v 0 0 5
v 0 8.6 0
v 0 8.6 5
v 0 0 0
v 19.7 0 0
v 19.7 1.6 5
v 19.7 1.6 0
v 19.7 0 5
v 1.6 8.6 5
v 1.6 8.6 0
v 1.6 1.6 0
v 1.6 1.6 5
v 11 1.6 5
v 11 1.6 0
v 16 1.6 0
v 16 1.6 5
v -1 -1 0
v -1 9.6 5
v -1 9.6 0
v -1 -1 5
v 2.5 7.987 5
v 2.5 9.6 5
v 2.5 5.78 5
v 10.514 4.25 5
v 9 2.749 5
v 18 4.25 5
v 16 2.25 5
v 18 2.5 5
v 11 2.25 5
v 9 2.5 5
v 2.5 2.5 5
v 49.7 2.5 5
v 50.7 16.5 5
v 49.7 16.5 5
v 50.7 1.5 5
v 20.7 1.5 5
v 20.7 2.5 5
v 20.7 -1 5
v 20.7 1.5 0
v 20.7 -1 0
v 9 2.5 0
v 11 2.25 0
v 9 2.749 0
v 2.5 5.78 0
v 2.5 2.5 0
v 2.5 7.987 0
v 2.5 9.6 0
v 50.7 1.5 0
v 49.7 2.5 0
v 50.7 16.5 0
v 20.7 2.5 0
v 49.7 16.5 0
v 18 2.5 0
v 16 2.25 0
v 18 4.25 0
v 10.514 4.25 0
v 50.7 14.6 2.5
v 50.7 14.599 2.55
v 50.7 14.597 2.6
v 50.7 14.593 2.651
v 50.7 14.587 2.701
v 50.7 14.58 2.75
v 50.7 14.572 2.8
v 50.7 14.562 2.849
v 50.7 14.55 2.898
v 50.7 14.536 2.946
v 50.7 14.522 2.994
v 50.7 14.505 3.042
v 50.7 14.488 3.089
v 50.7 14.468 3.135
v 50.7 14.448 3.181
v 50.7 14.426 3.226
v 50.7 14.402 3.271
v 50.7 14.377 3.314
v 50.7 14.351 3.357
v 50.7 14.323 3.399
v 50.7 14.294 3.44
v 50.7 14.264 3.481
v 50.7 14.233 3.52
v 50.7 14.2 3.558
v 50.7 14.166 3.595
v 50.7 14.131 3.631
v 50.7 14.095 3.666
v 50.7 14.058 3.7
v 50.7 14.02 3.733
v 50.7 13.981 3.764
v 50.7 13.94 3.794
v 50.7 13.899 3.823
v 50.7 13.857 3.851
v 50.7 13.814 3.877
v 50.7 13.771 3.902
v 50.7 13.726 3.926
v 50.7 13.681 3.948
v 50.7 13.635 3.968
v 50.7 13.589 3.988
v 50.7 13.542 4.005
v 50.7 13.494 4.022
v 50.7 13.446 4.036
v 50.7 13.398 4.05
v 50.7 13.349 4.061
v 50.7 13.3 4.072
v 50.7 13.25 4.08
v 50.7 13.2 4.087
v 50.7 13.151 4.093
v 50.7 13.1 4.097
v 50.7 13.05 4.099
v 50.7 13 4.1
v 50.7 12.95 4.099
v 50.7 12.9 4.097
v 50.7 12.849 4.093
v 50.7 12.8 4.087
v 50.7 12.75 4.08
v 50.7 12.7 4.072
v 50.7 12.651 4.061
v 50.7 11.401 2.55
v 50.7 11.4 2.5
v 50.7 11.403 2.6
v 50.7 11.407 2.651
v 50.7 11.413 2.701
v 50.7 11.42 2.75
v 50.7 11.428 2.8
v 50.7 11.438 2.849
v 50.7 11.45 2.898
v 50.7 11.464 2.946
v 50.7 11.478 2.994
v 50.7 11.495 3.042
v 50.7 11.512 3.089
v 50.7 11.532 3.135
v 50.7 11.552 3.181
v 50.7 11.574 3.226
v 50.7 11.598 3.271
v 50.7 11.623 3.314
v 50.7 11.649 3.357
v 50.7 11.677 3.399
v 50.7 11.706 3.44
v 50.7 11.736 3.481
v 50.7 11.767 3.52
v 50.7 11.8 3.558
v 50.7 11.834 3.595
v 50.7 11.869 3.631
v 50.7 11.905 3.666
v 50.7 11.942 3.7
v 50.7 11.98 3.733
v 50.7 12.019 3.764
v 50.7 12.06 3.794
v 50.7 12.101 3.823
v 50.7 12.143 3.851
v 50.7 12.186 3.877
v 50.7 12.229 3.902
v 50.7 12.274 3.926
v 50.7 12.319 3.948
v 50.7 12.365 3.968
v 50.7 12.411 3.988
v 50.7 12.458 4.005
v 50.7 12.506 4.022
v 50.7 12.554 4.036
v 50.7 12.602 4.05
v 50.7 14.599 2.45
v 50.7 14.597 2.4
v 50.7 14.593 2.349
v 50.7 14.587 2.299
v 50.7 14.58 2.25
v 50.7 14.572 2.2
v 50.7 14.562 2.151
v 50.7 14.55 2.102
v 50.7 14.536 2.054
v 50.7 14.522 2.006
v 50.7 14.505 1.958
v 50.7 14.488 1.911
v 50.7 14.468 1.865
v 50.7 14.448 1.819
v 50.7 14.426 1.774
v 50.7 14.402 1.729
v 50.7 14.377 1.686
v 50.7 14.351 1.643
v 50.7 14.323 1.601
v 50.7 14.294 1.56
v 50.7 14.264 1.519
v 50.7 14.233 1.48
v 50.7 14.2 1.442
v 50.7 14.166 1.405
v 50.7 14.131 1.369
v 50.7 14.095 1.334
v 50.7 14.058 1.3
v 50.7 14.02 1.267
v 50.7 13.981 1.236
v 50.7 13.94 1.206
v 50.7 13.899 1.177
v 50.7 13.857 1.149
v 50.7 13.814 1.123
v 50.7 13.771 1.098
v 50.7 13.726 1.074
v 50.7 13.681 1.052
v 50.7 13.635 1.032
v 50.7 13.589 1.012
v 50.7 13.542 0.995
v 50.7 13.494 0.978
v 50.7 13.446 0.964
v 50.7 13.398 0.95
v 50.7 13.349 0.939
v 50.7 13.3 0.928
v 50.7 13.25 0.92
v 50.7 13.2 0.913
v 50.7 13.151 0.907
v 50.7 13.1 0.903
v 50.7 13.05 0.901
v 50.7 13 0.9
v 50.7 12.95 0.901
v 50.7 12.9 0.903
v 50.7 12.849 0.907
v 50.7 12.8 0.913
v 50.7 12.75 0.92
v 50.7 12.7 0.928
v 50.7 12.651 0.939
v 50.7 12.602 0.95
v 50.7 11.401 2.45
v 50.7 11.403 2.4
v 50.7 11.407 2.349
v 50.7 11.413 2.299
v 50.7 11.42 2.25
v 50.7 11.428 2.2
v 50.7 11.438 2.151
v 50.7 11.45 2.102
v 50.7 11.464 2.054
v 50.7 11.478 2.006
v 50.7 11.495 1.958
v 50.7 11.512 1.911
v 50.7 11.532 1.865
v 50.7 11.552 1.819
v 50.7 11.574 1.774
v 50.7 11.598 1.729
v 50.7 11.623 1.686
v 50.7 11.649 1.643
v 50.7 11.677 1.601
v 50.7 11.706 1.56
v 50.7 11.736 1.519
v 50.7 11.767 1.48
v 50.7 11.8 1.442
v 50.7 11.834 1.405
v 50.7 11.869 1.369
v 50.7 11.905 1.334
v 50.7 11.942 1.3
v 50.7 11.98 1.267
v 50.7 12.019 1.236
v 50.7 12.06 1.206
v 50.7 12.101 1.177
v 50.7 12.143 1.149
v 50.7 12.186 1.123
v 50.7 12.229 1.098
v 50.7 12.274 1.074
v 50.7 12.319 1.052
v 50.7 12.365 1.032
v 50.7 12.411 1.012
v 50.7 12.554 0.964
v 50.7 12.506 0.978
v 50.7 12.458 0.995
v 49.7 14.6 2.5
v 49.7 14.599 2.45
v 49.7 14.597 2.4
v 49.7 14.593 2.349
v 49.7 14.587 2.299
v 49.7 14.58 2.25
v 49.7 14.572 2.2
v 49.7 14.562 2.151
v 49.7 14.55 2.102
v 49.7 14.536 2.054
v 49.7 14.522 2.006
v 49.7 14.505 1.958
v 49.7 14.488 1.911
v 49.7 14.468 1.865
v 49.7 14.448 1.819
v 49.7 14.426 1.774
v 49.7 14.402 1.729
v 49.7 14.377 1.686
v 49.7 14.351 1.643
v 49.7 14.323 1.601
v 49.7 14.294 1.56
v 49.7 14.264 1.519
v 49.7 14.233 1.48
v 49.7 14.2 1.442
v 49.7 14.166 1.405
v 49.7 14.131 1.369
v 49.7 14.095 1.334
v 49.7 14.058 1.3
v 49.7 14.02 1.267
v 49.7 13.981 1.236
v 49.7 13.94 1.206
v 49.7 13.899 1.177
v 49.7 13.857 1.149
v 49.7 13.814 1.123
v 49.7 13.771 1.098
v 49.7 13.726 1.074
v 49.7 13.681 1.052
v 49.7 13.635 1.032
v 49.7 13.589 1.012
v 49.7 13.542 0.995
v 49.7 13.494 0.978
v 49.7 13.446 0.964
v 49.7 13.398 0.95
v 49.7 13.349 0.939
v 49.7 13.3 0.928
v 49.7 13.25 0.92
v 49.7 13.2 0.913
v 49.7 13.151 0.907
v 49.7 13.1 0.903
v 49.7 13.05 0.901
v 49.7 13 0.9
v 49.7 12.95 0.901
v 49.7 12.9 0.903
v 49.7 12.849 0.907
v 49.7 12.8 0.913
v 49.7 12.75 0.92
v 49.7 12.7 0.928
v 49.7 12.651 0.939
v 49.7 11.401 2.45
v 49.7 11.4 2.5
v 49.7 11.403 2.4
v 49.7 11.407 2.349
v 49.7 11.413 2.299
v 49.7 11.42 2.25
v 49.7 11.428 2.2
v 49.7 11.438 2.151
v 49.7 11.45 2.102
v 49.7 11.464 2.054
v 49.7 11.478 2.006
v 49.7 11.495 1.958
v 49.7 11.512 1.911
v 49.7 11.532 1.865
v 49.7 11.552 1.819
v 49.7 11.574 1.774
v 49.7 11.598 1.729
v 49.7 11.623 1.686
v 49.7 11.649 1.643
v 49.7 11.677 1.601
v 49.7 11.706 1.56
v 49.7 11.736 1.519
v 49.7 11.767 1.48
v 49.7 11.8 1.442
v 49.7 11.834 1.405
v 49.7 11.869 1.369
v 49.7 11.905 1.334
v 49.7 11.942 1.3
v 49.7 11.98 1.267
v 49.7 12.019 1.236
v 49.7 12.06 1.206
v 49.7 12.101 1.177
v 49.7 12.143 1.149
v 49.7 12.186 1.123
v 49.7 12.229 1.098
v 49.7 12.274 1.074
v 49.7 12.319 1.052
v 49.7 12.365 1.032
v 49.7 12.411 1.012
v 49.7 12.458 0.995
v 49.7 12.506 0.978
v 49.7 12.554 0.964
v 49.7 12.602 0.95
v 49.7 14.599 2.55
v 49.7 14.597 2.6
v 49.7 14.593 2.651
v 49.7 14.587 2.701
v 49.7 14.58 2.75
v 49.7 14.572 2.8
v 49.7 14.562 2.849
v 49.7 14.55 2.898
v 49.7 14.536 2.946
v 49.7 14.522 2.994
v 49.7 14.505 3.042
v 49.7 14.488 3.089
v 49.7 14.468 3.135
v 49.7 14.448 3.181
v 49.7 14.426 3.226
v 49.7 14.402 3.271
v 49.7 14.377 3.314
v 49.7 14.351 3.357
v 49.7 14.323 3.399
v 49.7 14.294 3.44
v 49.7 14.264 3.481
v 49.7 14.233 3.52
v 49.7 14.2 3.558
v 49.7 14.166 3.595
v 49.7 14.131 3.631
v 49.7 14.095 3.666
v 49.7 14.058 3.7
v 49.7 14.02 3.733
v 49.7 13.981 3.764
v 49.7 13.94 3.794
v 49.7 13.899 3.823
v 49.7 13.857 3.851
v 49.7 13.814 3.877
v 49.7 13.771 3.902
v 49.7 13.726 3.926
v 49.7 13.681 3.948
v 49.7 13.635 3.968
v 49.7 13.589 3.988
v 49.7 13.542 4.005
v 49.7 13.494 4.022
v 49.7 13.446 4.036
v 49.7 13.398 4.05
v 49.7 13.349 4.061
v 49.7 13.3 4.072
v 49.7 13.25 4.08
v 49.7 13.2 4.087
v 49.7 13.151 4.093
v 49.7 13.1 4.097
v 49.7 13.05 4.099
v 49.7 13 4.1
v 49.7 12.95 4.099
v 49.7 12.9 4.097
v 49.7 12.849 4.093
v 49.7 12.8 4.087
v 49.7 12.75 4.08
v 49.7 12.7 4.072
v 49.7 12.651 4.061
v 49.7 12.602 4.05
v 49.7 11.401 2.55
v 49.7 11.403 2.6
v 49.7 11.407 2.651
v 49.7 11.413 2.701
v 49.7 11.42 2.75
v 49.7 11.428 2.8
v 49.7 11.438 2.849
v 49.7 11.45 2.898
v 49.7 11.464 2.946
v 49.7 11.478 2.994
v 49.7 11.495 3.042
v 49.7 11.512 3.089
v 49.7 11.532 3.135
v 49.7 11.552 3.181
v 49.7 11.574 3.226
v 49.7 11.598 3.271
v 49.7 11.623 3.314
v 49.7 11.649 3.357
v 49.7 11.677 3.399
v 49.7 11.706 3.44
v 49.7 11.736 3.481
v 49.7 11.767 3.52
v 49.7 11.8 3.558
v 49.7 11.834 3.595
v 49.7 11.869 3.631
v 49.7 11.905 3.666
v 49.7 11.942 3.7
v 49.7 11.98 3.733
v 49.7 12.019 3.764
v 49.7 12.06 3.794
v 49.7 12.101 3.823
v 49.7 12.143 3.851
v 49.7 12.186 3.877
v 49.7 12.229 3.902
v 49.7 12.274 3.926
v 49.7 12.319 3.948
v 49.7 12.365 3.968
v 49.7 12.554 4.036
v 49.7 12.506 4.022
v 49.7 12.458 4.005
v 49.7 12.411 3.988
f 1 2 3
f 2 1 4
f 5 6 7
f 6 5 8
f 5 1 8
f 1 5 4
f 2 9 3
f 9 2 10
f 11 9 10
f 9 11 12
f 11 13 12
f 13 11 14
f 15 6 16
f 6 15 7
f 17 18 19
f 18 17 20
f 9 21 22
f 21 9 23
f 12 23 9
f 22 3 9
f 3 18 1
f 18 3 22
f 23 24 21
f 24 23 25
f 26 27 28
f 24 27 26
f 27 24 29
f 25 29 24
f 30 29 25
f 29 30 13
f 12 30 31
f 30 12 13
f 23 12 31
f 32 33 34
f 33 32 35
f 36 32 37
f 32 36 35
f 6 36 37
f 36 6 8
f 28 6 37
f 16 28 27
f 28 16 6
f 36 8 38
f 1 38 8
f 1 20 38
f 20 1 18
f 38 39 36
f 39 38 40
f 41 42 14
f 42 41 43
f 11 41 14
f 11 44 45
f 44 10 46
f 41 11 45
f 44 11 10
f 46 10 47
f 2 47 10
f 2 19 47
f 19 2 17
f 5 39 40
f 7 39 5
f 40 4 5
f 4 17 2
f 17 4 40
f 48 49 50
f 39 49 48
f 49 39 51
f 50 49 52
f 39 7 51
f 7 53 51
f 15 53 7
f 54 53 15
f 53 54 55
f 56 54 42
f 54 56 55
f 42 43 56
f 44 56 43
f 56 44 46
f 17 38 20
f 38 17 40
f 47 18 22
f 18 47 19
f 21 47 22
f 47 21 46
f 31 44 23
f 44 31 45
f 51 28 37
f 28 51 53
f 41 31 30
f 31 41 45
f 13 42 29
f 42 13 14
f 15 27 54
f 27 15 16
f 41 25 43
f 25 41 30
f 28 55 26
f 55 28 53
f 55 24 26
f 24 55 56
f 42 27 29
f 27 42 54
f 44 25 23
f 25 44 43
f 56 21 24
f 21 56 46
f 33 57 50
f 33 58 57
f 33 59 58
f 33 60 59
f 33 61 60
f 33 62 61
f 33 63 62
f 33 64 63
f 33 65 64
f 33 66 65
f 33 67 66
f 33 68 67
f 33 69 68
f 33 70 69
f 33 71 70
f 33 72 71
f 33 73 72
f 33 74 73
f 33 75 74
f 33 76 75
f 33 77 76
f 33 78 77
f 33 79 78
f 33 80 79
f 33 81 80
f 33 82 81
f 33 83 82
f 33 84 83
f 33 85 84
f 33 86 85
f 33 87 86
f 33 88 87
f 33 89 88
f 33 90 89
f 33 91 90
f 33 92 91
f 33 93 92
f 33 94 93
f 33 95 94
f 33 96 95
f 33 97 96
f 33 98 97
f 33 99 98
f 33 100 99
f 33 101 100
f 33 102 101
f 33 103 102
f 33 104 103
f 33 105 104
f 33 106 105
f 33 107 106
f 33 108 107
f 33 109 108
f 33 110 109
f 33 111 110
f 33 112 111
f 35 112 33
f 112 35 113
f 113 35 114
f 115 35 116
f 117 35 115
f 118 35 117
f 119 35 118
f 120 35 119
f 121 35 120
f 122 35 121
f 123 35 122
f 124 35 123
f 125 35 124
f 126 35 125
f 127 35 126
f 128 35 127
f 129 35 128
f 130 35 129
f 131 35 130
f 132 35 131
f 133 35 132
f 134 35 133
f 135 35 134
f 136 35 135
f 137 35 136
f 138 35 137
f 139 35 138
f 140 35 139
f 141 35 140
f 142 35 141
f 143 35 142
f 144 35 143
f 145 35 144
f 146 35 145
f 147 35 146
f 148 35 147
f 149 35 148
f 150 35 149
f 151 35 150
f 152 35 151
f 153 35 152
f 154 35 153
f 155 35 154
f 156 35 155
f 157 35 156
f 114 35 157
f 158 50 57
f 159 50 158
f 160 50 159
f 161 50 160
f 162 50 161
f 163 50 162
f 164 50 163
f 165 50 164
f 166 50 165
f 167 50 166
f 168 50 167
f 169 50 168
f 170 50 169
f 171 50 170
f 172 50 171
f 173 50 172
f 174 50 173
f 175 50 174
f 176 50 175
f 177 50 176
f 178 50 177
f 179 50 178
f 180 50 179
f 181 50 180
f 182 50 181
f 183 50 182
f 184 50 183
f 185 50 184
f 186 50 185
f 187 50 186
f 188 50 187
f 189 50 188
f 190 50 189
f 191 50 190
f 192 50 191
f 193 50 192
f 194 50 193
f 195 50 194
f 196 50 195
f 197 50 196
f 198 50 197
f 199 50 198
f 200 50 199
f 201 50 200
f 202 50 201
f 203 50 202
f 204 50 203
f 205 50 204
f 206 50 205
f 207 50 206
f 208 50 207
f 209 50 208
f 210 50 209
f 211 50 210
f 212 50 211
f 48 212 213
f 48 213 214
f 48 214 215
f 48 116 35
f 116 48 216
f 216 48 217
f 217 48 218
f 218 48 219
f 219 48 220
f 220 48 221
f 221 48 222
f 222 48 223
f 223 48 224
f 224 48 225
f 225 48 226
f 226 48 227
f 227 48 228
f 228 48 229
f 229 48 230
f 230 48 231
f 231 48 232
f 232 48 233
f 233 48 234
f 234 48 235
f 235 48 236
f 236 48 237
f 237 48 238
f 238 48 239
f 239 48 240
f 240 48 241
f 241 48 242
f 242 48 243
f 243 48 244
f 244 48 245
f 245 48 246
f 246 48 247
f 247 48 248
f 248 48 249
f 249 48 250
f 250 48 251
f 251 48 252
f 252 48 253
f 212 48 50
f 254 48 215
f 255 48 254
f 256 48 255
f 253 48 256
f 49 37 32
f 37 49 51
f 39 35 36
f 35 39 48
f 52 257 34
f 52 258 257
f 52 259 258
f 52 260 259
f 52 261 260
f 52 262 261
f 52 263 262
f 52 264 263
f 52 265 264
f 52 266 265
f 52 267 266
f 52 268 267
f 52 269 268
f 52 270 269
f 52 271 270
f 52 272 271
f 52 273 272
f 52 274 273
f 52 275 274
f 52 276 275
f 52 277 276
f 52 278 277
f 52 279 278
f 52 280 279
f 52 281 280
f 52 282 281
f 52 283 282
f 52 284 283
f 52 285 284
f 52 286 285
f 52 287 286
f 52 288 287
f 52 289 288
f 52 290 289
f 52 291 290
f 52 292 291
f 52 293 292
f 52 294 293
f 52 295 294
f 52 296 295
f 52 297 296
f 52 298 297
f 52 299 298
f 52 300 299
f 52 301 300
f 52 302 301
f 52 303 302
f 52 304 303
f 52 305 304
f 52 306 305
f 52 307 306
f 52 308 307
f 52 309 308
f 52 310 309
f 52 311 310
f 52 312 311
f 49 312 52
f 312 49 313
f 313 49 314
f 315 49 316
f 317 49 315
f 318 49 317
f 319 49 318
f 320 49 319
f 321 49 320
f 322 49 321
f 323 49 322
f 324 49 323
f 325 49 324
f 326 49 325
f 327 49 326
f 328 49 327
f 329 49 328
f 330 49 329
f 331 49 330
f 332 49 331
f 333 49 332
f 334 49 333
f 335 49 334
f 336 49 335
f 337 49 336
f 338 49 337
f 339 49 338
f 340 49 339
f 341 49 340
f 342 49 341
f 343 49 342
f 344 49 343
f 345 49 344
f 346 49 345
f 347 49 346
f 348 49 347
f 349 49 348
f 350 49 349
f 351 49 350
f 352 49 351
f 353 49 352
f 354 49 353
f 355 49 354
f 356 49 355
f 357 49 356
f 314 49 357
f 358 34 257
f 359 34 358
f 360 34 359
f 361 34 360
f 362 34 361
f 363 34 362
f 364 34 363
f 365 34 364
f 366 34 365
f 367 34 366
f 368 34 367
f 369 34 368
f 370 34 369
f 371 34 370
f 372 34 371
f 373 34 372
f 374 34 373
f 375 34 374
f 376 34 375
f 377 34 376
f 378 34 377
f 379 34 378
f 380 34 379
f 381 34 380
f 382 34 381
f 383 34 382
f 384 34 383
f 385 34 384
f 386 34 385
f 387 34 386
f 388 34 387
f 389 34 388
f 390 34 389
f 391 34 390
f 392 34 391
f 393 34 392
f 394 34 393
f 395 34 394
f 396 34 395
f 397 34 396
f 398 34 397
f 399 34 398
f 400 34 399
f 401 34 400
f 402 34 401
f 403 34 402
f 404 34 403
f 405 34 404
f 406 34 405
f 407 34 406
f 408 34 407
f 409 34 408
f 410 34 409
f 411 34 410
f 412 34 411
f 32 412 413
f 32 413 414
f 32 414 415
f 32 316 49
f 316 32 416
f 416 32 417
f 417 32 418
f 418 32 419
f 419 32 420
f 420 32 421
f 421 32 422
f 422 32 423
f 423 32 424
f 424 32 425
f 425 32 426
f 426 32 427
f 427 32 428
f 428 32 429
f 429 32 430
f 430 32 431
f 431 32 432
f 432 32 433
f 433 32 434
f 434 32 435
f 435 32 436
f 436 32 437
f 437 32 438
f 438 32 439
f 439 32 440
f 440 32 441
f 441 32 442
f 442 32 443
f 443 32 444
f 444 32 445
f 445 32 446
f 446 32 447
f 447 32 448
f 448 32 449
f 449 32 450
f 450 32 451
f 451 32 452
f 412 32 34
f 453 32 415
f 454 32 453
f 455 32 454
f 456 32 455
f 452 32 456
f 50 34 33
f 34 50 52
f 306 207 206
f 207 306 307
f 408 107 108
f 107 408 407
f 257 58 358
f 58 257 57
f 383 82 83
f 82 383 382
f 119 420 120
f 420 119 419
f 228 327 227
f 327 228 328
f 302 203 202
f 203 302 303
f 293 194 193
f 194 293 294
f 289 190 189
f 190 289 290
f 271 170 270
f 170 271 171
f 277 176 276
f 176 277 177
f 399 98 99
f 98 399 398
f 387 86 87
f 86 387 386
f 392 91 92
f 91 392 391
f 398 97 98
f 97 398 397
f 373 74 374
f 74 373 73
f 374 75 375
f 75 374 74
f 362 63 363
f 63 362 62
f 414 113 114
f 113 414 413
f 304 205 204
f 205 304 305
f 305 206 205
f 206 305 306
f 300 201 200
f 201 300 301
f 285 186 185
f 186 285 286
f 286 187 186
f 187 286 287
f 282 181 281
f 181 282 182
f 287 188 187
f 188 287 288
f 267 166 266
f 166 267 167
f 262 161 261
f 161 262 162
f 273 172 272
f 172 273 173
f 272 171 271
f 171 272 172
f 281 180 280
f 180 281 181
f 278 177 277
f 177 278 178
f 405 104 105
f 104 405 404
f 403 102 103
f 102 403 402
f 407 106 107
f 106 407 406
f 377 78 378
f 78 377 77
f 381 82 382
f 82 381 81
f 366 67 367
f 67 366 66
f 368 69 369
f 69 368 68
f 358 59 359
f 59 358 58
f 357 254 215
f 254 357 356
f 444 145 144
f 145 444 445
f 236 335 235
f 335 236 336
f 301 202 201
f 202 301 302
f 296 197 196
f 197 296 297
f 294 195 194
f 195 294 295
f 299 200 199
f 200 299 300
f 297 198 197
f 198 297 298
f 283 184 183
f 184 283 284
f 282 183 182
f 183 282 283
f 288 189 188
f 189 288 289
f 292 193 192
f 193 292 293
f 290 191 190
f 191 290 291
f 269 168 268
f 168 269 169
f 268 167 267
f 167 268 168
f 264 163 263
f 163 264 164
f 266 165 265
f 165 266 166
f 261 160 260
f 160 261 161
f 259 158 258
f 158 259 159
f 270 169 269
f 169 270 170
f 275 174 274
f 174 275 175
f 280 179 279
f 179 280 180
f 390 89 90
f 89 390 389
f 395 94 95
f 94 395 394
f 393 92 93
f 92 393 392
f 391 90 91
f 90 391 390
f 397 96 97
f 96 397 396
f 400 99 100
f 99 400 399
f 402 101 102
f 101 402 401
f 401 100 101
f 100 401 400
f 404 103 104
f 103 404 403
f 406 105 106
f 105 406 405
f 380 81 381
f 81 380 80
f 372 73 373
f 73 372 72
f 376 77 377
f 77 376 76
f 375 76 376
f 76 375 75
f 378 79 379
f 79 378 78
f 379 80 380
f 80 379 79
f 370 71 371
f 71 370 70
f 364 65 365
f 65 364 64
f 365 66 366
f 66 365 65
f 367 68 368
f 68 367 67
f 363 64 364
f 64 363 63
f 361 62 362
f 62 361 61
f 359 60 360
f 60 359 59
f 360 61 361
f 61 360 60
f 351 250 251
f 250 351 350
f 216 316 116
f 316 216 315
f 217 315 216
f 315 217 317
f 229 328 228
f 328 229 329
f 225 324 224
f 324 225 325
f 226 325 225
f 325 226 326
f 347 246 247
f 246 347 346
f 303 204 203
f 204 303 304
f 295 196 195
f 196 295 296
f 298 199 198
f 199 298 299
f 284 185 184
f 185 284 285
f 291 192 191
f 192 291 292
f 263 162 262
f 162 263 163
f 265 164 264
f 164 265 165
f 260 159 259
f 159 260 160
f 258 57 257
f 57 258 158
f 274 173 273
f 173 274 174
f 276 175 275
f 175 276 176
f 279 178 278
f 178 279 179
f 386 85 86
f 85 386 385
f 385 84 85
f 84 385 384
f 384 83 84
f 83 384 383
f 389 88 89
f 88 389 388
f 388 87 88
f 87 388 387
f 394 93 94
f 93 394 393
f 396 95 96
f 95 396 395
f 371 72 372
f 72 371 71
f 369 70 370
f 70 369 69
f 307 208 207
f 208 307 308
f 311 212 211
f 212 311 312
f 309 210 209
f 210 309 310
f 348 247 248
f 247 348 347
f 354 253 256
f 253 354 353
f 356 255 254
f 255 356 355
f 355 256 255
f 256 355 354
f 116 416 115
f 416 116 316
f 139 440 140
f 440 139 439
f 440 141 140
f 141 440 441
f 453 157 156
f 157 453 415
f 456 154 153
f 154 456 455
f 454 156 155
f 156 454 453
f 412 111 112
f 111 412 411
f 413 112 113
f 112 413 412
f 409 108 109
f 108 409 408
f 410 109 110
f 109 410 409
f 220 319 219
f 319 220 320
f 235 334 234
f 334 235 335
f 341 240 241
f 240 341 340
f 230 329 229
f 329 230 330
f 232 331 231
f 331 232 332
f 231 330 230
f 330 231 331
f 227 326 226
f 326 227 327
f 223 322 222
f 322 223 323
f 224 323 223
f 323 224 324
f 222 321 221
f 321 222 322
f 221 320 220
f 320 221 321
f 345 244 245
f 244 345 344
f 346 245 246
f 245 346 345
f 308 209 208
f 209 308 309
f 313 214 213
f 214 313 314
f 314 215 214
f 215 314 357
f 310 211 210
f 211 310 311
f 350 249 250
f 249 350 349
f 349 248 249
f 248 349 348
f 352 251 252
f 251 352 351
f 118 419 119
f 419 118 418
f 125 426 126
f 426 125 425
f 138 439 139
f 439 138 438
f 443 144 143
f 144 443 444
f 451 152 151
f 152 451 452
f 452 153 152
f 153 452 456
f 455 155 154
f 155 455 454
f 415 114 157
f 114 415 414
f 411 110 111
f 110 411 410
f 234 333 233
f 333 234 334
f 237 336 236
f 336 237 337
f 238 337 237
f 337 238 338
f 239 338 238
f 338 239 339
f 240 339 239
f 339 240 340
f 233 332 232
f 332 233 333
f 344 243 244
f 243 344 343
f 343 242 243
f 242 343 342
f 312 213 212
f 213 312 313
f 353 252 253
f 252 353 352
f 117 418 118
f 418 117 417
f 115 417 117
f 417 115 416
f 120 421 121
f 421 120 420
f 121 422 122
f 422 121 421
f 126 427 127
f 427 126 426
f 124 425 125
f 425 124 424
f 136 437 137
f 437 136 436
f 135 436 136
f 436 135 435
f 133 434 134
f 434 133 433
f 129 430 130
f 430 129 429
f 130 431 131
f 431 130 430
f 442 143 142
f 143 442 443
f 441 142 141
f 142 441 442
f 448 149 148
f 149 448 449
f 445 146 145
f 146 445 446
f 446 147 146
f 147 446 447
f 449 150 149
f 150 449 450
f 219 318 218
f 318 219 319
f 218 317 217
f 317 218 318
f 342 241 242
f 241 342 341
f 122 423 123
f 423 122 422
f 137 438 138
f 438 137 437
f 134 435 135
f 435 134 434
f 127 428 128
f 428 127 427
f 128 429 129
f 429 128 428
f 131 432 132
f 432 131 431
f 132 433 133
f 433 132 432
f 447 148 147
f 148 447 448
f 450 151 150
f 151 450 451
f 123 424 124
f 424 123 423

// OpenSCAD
// halterung für metall-leiste

difference(){
union(){
    difference(){    
    // aussenrum
    difference(){
        union(){
            translate([-1,-1,0])
            cube([19.7+2, 8.6+2, 5]);
        }
        // das ist die Leiste
        translate([0,0,-0.5])
        difference(){
            cube([19.7, 8.6, 6]);
            translate([1.6, 1.6,-0.5])
            cube([19.7, 8.6, 7]);
        }
        
        // stück wegnehmen
        translate([2.5,2.5,-0.5])
        cube([19.7,8.6,6]);
    }   
    
        translate([10,2.5,0])
        translate([1,-1,-0.5])
        cube([5, 2, 6]);     
    }
    translate([9,2.25,0])
    cube([9, 2, 5]);   
   
    translate([1.6,6.2,0])
   rotate([0,0,-25]) 
   cube([10,2,5]);
    
    // lasche
    translate([19.7+1,1.5,0])
    cube([30,1,5]);
    
    translate([30+19.7,1.5,0])
    cube([1, 15,5]);
}
    translate([30+19-2,13,2.5])
    rotate([0,90,0])
    cylinder(r=1.6, h=10, $fn=200);
}
